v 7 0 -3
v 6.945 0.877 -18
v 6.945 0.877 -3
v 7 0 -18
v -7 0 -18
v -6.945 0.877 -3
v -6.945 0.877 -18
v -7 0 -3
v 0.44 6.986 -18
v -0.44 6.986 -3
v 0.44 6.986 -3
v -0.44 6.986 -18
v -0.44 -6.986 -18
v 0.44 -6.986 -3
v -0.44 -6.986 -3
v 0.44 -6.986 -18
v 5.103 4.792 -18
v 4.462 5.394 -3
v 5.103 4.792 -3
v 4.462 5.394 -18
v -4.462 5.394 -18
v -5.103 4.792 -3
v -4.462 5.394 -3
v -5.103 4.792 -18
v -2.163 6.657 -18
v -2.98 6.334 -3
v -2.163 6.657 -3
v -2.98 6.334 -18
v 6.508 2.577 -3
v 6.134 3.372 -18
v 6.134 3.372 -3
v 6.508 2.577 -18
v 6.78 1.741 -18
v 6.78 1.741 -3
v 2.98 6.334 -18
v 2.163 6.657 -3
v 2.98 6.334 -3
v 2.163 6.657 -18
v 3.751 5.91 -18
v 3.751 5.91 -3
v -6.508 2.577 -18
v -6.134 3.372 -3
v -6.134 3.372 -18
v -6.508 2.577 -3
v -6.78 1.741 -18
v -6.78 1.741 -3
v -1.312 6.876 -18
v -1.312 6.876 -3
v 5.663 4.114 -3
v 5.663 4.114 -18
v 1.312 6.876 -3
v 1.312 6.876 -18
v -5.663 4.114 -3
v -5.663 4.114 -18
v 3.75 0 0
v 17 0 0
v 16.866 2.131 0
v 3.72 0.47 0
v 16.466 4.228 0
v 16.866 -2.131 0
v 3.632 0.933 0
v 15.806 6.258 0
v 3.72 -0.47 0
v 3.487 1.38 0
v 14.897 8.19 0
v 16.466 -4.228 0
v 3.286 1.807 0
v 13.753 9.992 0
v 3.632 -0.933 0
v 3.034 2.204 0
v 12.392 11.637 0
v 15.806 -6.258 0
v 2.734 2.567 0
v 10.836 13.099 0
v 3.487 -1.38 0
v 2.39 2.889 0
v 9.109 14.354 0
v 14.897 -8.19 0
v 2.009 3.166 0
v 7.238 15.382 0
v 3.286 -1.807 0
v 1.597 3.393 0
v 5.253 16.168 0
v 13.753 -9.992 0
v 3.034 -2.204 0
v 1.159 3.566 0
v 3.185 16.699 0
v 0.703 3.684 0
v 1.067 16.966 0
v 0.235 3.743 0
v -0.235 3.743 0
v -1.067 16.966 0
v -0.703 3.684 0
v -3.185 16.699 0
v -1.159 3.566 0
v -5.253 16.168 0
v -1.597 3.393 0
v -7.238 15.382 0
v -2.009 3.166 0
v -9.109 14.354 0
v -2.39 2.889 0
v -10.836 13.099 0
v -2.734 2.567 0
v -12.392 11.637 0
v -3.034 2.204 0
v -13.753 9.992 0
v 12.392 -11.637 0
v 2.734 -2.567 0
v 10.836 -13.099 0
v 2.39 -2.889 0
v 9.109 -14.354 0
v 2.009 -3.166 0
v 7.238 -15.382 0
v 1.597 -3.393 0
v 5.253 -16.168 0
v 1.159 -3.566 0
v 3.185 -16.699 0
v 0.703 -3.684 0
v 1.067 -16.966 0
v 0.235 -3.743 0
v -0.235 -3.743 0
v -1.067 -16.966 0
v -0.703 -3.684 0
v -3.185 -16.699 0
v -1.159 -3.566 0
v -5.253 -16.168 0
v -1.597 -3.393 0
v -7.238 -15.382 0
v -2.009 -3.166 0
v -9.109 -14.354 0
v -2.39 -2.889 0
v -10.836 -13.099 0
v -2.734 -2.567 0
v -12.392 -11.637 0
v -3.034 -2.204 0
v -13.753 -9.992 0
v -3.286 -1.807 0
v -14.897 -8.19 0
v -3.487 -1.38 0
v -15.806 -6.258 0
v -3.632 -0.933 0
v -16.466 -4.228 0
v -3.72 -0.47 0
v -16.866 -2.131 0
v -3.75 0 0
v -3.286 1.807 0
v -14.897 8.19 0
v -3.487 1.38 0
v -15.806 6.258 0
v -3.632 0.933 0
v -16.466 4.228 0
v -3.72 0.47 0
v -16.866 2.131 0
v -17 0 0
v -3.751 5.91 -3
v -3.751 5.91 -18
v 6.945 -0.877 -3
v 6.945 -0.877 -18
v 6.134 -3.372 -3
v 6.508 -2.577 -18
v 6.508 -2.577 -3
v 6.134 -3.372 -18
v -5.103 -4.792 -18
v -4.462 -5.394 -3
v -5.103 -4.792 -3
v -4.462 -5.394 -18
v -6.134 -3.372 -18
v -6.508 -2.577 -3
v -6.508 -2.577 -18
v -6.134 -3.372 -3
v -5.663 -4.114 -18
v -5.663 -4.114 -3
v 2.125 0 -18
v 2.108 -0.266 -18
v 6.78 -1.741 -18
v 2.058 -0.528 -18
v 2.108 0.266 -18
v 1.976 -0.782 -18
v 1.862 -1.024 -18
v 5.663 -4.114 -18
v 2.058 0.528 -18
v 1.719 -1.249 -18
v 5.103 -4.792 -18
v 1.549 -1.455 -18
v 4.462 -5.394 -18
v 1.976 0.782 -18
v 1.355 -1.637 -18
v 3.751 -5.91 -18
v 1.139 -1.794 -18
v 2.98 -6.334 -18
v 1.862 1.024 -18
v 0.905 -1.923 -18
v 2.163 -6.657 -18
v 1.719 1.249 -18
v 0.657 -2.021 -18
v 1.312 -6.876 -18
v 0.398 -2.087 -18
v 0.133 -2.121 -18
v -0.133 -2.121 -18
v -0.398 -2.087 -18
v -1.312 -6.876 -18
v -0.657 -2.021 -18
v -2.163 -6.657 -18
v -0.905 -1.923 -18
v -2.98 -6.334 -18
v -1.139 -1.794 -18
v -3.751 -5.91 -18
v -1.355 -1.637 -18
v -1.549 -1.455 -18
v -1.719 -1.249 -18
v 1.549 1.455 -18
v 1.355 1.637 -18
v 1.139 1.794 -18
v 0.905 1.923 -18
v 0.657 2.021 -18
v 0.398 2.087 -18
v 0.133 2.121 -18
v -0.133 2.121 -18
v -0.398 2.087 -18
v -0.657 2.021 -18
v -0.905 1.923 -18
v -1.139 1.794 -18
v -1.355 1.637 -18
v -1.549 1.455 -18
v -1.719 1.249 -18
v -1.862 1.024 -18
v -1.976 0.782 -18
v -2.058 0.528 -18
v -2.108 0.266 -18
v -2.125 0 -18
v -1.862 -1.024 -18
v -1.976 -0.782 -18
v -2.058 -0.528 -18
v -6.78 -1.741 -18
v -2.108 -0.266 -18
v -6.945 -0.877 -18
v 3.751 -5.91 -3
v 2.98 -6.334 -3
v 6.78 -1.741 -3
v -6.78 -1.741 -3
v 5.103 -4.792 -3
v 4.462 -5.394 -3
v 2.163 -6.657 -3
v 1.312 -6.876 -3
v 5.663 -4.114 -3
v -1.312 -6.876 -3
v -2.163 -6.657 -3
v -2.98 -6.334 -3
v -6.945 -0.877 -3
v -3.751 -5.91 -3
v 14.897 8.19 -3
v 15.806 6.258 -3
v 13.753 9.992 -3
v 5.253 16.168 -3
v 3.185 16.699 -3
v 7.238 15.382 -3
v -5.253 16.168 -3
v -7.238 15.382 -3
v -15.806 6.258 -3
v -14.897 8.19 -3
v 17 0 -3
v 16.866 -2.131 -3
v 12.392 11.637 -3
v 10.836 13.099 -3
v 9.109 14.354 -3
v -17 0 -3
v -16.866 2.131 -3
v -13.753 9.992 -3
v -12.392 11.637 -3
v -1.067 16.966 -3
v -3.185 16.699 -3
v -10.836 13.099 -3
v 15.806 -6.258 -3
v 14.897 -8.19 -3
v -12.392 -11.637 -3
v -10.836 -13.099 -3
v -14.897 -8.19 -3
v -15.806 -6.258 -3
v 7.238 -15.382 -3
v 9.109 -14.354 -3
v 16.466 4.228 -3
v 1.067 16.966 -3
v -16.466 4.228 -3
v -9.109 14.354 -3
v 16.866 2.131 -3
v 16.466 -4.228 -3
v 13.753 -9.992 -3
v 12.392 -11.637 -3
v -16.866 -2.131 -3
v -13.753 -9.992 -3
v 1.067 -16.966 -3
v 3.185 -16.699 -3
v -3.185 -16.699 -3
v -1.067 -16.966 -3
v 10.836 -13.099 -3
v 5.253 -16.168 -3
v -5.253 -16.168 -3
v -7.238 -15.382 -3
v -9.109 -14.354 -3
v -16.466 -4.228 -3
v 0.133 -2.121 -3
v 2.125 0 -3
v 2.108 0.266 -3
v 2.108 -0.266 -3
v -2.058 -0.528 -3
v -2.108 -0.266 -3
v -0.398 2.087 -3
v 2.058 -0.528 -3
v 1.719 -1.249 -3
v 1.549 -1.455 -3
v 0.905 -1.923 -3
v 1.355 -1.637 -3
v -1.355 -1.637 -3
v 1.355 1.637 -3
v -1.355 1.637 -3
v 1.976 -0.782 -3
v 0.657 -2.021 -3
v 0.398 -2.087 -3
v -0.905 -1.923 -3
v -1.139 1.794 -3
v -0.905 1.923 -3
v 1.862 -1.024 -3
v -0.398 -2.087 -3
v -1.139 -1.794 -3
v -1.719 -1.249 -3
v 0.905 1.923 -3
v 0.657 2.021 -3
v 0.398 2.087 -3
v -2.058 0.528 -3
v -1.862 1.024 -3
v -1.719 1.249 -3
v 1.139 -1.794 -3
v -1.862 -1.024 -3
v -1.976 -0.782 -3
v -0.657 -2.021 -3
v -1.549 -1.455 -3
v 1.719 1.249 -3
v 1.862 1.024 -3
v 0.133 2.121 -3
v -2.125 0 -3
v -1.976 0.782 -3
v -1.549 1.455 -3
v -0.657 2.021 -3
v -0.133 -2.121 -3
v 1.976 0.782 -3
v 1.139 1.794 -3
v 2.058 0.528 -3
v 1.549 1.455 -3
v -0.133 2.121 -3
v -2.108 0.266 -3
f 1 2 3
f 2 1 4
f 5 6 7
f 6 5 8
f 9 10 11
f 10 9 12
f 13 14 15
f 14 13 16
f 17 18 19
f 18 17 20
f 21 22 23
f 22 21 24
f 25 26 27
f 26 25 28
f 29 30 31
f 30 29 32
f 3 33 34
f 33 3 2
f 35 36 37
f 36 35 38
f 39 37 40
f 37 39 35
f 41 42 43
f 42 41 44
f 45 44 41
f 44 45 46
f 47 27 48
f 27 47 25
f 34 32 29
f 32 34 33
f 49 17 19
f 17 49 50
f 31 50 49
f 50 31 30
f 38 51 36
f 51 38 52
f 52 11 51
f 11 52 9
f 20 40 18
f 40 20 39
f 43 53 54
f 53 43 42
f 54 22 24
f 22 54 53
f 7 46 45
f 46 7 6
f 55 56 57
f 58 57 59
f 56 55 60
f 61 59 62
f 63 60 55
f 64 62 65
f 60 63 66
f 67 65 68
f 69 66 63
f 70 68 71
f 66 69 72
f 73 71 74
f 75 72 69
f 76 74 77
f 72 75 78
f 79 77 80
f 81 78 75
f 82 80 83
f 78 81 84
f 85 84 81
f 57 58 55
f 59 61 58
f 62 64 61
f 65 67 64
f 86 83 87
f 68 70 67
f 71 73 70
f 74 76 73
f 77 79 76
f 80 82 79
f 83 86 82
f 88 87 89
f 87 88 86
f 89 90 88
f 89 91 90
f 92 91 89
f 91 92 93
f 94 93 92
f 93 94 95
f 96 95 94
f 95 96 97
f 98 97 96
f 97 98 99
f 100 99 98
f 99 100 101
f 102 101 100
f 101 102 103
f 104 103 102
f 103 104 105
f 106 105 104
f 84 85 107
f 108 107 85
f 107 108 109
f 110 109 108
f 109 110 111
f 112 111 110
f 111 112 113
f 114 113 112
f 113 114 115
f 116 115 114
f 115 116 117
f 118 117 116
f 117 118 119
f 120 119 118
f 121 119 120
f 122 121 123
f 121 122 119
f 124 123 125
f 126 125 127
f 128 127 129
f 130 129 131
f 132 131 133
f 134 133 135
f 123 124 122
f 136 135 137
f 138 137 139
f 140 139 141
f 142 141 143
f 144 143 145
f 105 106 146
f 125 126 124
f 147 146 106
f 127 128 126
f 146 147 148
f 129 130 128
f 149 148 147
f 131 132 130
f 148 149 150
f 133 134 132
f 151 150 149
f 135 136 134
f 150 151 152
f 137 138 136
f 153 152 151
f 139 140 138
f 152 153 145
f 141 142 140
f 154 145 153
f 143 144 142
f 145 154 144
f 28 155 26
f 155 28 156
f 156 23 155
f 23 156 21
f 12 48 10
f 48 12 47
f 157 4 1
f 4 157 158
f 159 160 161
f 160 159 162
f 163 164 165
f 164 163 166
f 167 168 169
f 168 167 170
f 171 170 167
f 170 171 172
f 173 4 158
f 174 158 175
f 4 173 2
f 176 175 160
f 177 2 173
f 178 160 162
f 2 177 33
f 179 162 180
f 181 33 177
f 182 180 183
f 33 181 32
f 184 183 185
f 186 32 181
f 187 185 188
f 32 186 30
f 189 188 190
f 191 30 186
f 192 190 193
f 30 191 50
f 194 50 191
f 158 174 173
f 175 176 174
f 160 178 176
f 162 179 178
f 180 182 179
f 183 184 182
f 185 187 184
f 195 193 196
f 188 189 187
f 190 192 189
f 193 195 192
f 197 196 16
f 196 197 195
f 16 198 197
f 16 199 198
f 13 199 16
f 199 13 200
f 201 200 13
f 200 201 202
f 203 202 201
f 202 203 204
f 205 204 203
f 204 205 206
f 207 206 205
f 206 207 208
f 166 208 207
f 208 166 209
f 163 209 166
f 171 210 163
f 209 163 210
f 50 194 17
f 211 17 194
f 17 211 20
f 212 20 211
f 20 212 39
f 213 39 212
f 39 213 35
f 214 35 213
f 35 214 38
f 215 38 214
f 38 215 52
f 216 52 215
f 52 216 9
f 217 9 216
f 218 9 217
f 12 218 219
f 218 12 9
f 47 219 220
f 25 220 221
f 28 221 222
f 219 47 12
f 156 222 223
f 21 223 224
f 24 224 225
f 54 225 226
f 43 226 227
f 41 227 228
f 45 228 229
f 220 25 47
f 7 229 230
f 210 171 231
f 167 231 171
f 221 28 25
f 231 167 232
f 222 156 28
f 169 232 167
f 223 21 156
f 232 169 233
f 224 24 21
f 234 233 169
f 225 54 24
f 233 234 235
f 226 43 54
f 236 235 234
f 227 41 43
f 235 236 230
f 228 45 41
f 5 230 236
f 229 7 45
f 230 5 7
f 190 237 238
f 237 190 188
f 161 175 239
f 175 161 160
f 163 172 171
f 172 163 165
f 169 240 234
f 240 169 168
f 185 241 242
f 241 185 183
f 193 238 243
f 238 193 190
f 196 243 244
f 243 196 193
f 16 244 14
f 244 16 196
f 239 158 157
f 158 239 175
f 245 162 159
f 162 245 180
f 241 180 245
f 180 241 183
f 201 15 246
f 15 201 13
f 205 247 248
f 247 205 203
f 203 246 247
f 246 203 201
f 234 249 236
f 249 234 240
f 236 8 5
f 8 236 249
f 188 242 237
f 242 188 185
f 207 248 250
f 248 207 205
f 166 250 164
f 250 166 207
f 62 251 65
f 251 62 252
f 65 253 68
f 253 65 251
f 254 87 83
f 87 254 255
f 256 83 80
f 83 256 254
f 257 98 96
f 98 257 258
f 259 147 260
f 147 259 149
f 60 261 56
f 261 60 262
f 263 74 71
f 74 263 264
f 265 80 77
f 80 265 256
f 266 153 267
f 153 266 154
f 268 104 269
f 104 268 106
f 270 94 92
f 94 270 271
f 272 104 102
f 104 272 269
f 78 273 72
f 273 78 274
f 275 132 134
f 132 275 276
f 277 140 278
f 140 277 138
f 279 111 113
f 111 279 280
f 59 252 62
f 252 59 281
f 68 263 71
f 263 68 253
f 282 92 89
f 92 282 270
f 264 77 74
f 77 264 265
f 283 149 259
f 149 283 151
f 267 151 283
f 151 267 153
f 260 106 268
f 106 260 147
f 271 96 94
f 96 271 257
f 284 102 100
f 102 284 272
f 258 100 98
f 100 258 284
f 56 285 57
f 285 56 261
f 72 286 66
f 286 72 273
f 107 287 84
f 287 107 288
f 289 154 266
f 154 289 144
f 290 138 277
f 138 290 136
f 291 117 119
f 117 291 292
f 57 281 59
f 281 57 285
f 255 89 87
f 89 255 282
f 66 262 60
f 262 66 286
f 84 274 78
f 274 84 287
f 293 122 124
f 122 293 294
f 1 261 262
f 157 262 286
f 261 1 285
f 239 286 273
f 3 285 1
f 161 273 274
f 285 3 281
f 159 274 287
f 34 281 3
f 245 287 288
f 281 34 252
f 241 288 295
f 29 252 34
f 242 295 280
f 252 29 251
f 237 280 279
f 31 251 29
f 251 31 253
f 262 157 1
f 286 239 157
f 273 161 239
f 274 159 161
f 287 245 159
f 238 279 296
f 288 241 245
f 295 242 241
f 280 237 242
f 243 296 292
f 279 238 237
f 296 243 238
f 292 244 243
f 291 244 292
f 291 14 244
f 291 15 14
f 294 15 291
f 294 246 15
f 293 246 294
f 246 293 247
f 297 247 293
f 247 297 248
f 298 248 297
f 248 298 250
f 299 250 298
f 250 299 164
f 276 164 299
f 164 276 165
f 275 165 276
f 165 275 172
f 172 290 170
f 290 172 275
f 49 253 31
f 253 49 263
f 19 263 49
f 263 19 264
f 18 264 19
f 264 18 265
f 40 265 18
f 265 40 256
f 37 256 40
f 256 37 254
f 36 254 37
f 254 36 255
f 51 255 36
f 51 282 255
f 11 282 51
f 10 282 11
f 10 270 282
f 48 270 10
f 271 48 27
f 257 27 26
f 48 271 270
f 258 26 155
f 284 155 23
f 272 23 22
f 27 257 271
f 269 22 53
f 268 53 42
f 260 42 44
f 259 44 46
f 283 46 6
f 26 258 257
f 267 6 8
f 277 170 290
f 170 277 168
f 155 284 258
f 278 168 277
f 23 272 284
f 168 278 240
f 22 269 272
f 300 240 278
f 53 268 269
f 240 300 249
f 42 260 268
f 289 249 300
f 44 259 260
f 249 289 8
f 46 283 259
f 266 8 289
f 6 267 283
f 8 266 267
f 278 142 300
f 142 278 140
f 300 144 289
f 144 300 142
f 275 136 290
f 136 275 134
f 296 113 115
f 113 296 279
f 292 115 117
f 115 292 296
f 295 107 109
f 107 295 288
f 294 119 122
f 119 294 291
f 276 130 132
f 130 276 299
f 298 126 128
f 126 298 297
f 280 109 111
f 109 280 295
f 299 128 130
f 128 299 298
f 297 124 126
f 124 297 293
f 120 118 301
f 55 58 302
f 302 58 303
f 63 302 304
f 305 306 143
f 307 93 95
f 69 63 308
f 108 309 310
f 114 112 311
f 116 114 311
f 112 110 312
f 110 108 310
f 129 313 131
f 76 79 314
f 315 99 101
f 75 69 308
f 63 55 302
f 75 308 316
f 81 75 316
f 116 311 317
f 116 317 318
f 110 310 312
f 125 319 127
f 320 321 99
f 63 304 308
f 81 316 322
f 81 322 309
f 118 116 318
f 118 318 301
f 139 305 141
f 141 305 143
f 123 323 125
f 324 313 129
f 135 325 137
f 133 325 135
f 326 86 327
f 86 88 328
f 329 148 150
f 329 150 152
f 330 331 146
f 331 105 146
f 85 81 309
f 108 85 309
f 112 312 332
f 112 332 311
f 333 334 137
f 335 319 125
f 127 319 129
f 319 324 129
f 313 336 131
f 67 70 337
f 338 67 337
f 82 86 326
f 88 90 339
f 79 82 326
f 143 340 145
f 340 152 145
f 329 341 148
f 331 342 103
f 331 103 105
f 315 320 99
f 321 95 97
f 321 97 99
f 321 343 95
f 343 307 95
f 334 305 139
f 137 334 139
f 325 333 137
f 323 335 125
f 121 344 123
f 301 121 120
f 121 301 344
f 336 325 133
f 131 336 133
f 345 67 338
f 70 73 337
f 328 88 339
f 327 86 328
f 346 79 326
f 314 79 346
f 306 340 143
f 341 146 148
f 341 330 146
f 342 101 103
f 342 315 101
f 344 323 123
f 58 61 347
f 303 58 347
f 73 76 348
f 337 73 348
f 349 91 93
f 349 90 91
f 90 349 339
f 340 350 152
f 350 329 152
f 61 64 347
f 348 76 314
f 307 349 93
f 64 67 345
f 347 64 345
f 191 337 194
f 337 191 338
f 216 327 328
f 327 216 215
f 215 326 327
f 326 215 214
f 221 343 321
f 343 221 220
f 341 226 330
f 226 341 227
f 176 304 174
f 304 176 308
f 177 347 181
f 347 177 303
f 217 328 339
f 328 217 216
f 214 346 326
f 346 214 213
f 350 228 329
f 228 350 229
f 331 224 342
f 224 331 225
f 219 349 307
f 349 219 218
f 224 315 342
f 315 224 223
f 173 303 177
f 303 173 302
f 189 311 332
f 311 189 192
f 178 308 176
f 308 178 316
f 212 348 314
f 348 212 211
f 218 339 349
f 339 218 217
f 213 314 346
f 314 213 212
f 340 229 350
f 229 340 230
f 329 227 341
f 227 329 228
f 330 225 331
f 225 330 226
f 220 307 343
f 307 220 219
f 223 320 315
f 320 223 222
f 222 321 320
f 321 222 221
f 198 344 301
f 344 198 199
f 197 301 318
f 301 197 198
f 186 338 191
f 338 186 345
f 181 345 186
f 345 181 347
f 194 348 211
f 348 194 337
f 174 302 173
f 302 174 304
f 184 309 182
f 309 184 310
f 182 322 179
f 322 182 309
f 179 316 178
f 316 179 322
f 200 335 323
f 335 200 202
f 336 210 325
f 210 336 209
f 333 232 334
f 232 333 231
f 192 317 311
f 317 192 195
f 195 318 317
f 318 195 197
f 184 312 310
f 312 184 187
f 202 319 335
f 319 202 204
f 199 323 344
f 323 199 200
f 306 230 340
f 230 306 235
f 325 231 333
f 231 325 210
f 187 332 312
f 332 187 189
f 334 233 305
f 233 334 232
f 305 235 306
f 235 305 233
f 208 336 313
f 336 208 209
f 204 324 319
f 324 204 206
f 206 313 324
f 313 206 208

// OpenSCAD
$fn = 50;


difference() {
	union() {
		translate(v = [0, 0, -18.0000000000]) {
			cylinder(h = 18, r = 7.0000000000);
		}
		translate(v = [0, 0, -3.0000000000]) {
			cylinder(h = 3, r = 17.0000000000);
		}
	}
	union() {
		translate(v = [0, 0, 0]) {
			rotate(a = [0, 0, 0]) {
				difference() {
					union() {
						#translate(v = [0, 0, -18.0000000000]) {
							cylinder(h = 18, r = 2.0000000000);
						}
						#translate(v = [0, 0, -3]) {
							cylinder(h = 3, r = 7.0000000000, r1 = 2.1250000000, r2 = 3.7500000000);
						}
						#translate(v = [0, 0, -18.0000000000]) {
							cylinder(h = 18, r = 2.1250000000);
						}
						#translate(v = [0, 0, -18.0000000000]) {
							cylinder(h = 18, r = 2.0000000000);
						}
					}
					union();
				}
			}
		}
	}
}
